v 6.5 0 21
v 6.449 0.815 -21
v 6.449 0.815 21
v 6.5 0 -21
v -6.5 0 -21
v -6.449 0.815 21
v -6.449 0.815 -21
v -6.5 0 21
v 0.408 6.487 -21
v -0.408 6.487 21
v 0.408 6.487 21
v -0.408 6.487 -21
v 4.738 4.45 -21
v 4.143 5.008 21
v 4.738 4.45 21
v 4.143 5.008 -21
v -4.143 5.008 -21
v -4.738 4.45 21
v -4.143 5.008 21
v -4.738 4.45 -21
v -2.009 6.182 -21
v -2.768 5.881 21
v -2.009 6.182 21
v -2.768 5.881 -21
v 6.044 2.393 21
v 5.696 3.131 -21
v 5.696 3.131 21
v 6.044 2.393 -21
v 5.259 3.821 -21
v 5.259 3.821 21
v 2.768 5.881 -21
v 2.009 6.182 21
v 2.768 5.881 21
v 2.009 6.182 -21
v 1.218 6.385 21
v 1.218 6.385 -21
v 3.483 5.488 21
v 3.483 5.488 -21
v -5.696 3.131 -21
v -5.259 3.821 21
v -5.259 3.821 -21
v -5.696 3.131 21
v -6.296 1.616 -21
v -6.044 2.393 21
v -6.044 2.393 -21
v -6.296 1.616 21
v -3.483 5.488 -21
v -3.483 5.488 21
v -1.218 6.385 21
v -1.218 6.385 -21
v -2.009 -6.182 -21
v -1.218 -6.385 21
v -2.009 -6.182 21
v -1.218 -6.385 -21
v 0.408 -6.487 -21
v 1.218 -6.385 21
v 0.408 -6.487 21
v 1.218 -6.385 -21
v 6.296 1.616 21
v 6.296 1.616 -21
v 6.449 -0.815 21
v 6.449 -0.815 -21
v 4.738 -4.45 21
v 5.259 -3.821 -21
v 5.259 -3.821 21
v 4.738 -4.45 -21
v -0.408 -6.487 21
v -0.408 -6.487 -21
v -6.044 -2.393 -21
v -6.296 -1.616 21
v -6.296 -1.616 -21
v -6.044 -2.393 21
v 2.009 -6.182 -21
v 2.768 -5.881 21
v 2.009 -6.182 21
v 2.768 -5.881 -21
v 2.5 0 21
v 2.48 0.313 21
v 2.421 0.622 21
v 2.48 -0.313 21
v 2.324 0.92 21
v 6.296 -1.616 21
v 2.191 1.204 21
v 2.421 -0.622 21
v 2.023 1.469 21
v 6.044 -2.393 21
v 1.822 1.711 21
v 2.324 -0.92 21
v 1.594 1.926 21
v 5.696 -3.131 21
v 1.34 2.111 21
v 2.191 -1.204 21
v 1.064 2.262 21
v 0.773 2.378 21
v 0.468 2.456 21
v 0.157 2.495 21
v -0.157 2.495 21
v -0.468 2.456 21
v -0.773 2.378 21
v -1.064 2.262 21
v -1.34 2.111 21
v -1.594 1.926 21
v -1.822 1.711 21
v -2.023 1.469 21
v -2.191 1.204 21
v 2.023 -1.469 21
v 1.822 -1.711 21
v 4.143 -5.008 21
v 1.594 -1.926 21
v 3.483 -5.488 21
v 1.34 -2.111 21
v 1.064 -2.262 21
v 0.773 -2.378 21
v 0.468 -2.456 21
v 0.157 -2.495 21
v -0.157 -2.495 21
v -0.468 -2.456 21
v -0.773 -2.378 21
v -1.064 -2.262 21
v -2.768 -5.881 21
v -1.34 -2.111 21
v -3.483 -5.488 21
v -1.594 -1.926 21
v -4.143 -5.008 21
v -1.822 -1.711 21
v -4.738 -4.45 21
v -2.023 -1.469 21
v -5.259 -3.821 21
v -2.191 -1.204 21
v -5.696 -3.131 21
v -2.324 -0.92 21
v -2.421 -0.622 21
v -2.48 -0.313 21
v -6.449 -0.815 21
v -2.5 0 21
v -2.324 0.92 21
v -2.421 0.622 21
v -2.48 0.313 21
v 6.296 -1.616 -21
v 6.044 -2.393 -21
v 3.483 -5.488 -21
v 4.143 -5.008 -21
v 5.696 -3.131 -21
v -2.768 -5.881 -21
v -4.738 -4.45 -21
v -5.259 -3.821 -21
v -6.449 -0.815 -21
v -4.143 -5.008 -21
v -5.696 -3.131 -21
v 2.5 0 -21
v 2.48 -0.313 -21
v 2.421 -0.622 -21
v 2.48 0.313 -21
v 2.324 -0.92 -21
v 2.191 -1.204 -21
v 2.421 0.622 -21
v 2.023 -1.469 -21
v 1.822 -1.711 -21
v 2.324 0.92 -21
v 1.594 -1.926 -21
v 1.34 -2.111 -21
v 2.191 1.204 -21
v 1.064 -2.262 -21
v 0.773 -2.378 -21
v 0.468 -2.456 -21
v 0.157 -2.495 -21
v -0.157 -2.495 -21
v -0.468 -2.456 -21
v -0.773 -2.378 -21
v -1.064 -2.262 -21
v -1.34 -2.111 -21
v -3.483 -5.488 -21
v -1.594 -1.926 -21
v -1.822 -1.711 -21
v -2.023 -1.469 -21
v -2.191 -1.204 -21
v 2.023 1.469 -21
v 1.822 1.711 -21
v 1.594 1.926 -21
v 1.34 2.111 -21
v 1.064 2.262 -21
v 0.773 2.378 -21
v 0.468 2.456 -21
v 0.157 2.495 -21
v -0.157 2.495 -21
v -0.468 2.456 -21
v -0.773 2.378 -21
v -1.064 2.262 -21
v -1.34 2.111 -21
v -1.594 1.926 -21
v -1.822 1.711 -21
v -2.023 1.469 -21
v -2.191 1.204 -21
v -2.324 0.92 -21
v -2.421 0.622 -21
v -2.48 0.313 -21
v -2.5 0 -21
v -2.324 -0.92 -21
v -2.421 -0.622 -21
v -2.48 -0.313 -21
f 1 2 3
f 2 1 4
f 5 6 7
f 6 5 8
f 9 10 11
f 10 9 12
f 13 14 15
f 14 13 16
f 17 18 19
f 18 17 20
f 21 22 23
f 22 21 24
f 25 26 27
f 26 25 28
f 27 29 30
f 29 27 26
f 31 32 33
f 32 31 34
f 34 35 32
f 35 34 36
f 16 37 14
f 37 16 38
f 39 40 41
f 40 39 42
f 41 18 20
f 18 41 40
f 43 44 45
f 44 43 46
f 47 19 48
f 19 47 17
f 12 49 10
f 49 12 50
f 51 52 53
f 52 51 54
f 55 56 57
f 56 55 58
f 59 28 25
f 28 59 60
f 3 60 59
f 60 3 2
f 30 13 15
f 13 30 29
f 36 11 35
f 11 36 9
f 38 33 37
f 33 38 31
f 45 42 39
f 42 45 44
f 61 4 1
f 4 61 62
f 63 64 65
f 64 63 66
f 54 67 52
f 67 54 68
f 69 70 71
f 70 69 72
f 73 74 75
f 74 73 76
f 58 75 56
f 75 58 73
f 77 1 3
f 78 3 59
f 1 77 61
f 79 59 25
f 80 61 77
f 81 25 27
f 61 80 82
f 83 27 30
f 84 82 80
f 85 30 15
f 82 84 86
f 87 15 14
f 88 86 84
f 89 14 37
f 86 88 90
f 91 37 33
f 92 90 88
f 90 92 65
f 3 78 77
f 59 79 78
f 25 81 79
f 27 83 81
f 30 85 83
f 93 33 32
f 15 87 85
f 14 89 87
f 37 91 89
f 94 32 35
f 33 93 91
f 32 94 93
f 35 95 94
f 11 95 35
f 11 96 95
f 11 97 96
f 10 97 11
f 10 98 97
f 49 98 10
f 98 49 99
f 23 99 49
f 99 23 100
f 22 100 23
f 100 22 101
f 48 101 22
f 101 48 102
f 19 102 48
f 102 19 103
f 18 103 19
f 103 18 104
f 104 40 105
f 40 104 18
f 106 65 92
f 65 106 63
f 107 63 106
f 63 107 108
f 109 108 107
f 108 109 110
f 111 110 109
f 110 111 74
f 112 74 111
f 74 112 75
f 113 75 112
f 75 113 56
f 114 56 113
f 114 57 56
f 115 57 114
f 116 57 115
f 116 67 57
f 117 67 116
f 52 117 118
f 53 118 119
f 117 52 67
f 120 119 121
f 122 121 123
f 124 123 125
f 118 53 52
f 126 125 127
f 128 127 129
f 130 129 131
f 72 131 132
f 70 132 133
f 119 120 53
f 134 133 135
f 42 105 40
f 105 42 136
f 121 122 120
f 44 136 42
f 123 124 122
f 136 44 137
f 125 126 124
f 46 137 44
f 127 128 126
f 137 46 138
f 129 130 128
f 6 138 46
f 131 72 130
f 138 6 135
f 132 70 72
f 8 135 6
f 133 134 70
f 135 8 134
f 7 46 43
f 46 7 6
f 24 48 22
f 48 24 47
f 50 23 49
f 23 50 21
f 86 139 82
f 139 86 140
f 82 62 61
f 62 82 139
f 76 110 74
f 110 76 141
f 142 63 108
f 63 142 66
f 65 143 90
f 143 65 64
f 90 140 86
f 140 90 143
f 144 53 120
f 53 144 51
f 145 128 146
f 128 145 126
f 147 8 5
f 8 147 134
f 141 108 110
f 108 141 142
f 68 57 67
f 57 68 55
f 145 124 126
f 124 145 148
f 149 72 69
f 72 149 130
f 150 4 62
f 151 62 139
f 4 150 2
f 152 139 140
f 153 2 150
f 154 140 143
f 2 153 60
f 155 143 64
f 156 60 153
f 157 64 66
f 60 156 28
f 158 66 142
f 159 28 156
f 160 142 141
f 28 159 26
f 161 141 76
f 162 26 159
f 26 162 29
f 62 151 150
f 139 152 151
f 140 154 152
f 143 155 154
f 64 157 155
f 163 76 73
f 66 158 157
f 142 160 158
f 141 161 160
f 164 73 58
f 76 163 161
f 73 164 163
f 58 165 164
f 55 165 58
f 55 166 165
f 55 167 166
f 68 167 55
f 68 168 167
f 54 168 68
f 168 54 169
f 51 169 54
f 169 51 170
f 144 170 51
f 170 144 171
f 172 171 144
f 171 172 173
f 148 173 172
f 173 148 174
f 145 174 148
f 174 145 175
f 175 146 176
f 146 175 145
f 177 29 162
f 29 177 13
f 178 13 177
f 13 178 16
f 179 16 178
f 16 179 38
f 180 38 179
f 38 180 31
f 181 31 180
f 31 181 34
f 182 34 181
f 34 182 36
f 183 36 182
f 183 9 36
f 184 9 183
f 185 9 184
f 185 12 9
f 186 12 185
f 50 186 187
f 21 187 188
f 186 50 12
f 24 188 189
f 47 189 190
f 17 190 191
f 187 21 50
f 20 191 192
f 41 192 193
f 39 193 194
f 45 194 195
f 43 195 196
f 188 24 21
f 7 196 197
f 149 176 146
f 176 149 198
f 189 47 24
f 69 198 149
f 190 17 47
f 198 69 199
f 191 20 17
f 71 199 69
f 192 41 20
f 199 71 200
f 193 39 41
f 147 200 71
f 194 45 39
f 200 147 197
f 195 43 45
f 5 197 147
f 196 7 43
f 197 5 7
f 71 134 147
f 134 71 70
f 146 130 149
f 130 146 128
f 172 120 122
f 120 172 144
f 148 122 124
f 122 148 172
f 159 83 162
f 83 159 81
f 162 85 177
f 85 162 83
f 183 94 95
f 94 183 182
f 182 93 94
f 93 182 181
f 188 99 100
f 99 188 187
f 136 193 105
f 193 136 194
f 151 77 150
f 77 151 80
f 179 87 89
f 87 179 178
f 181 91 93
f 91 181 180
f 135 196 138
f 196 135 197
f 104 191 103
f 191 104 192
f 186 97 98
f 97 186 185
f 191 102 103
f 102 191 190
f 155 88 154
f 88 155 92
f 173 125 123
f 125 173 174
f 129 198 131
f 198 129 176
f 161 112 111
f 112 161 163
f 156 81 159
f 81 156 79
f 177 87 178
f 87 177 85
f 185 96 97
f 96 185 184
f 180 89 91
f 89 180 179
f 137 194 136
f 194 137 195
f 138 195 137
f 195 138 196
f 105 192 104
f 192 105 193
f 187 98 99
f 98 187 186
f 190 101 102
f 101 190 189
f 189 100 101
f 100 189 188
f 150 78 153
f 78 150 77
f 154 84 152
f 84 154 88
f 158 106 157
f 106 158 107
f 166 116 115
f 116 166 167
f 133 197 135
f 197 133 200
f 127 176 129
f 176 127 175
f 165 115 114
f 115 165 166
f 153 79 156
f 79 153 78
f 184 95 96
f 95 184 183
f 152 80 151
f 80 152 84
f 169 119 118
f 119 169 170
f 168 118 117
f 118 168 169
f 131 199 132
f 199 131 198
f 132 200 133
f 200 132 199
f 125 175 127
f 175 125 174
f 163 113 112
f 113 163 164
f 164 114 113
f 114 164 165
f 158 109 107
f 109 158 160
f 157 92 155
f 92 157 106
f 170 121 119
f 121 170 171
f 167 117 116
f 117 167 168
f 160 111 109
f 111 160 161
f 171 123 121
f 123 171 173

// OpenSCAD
$fn = 50;


difference() {
	union() {
		translate(v = [0, 0, -21.0000000000]) {
			cylinder(h = 42, r = 6.5000000000);
		}
	}
	union() {
		translate(v = [0, 0, -100.0000000000]) {
			cylinder(h = 200, r = 2.5000000000);
		}
	}
}
